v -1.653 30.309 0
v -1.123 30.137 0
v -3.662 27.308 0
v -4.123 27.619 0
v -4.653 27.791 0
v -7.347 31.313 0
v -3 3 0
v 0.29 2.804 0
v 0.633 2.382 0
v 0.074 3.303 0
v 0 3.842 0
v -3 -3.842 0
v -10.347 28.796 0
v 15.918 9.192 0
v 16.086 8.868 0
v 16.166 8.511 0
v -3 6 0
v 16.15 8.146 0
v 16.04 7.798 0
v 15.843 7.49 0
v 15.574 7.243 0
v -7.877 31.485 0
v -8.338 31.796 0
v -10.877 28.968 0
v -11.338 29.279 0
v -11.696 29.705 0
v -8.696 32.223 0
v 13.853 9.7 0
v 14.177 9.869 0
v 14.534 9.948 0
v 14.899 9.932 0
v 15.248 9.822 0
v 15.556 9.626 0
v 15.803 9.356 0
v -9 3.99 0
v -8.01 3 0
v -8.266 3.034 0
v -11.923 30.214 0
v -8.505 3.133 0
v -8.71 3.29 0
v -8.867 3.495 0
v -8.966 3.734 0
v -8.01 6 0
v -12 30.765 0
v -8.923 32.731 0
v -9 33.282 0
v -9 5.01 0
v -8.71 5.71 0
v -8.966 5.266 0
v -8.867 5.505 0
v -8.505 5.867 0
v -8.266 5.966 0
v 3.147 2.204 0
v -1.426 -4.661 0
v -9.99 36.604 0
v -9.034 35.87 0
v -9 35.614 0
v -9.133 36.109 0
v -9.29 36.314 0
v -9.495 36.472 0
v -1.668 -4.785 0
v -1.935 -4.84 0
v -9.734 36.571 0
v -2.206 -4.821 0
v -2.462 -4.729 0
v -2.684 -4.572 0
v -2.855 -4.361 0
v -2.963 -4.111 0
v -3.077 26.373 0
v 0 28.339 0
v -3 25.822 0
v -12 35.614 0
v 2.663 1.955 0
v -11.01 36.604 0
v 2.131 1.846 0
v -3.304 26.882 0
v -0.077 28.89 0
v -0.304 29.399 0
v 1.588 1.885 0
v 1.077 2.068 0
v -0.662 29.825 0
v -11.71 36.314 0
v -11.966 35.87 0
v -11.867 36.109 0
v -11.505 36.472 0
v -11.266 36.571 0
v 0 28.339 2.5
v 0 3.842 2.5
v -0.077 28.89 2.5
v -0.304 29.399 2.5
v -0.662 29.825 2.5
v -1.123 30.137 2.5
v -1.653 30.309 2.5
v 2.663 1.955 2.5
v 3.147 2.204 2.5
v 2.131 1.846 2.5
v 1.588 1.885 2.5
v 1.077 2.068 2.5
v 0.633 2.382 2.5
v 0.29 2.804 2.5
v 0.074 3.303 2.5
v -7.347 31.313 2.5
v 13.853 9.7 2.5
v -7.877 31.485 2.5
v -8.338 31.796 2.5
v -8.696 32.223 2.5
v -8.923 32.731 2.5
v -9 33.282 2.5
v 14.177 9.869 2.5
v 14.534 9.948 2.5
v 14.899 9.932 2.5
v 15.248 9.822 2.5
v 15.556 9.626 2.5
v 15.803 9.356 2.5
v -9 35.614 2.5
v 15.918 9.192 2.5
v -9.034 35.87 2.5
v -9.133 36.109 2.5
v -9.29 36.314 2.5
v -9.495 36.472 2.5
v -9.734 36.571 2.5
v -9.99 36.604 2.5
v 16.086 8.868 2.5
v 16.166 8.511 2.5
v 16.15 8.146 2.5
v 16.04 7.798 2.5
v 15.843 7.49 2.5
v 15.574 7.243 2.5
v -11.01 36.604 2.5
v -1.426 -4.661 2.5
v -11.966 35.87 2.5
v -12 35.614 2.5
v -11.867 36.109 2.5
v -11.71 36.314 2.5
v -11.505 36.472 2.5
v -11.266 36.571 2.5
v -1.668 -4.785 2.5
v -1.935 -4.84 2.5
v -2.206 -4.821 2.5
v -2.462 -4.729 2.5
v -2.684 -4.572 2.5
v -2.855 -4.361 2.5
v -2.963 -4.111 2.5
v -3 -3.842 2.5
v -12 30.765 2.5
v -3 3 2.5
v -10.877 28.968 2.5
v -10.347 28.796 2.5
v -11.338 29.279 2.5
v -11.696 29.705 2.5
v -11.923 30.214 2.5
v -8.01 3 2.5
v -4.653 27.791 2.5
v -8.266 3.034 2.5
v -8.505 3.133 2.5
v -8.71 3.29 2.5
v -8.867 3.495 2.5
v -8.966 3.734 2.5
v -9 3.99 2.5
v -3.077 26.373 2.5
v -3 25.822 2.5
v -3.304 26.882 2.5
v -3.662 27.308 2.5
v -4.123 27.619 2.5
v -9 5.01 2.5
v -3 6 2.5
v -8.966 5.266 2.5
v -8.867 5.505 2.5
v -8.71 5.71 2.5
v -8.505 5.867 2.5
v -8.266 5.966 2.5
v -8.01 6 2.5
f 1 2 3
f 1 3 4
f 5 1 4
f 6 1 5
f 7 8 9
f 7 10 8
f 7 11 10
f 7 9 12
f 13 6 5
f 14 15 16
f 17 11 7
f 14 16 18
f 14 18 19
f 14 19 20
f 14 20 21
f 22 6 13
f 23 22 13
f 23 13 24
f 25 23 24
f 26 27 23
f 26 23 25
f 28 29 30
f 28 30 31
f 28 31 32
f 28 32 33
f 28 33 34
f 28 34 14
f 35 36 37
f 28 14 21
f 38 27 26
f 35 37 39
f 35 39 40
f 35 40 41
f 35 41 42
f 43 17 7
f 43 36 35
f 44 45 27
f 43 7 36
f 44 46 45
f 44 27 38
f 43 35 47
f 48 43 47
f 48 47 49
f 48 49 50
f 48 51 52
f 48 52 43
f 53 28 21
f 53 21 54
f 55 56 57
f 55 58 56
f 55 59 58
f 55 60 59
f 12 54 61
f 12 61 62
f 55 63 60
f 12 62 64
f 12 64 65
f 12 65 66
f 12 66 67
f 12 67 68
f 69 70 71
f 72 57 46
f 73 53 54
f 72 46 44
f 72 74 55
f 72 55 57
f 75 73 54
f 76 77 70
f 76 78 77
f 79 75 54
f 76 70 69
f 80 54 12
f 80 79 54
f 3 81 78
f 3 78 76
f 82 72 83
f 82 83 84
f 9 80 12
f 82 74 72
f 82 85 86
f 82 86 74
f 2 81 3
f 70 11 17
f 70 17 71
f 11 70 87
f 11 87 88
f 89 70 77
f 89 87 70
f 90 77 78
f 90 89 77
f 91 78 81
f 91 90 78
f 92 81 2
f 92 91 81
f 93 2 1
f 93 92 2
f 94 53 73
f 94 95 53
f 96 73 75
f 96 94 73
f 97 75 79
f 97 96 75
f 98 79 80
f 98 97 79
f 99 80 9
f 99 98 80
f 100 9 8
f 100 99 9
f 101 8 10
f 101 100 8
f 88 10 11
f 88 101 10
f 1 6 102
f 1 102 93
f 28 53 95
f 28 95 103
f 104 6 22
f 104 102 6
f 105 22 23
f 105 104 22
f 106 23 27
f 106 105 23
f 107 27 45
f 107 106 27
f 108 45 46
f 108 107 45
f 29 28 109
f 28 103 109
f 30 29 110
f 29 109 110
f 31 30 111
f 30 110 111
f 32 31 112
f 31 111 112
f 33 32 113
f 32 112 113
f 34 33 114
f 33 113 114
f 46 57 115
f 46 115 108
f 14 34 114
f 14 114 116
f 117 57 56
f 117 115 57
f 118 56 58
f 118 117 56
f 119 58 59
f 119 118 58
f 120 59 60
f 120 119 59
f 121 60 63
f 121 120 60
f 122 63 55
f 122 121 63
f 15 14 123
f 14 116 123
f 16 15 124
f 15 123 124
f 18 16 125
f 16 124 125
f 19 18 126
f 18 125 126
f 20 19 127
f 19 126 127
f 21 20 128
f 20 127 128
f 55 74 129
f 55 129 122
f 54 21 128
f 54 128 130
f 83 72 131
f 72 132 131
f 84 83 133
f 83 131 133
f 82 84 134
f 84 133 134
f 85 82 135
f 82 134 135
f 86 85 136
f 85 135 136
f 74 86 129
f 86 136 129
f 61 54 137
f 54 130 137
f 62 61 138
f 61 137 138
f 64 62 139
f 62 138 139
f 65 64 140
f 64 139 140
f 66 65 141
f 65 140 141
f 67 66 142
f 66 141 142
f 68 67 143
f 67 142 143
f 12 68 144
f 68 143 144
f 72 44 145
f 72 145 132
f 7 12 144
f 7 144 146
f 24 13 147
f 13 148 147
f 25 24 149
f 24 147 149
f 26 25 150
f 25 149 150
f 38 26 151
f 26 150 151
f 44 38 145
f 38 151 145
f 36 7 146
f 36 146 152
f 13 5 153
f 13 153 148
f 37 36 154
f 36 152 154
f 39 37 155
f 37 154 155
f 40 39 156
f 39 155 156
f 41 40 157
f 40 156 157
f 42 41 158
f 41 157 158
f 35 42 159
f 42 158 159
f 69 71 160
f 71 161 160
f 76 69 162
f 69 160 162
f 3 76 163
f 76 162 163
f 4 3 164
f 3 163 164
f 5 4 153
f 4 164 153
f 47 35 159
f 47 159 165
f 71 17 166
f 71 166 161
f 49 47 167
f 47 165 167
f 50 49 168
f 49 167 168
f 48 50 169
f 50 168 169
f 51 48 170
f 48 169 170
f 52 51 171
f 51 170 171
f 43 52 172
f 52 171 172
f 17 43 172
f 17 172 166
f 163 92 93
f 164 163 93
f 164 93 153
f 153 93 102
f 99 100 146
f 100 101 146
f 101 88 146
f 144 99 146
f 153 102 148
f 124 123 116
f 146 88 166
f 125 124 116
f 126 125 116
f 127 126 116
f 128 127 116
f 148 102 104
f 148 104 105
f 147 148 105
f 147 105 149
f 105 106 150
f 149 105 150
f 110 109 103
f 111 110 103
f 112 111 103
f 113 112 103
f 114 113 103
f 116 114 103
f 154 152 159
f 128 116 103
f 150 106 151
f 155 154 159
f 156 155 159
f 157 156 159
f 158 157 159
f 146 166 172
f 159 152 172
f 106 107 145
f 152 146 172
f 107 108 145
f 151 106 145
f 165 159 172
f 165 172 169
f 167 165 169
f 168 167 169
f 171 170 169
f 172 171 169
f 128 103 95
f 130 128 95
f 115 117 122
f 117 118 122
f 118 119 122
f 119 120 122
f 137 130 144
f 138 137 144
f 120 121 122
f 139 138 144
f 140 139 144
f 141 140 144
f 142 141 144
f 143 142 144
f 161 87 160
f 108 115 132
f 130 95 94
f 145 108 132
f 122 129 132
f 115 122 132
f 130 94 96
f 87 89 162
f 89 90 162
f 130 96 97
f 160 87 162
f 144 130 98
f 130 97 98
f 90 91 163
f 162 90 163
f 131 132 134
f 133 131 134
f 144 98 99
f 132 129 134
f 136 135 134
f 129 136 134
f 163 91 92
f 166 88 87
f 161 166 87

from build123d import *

# Parameters (mm, degrees)
PAD_DEPTH   = 2.5
FILLET_R    = 0.99
FILLET001_R = 0.99
FILLET002_R = 1.4
FILLET003_R = 2
FILLET004_R = 1
FILLET005_R = 2


with BuildPart() as part:
    # Sketch → Pad (new body)
    with BuildSketch(Plane.XY):
        Polygon((0, 0), (15, 10.503113), (16.720729, 8.045657), (-3, -5.762946), (-3, 3), (-9, 3), (-9, 6), (-3, 6), (-3, 27.5), (-12, 29.086943), (-12, 36.604242), (-9, 36.604242), (-9, 31.604242), (0, 30.017299), align=None)
    extrude(amount=PAD_DEPTH)

    # Fillet
    fillet_edges = [part.edges().sort_by_distance(p)[0] for p in [
        (-9, 3, 1.25),
        (-9, 6, 1.25),
    ]]
    fillet(fillet_edges, radius=FILLET_R)

    # Fillet001
    fillet001_edges = [part.edges().sort_by_distance(p)[0] for p in [
        (-12, 36.604242, 1.25),
        (-9, 36.604242, 1.25),
    ]]
    fillet(fillet001_edges, radius=FILLET001_R)

    # Fillet002
    fillet002_edges = [part.edges().sort_by_distance(p)[0] for p in [
        (15, 10.503113, 1.25),
        (16.720729, 8.045657, 1.25),
    ]]
    fillet(fillet002_edges, radius=FILLET002_R)

    # Fillet003
    fillet003_edges = [part.edges().sort_by_distance(p)[0] for p in [
        (0, 0, 1.25),
    ]]
    fillet(fillet003_edges, radius=FILLET003_R)

    # Fillet004
    fillet004_edges = [part.edges().sort_by_distance(p)[0] for p in [
        (-3, -5.762946, 1.25),
    ]]
    fillet(fillet004_edges, radius=FILLET004_R)

    # Fillet005
    fillet005_edges = [part.edges().sort_by_distance(p)[0] for p in [
        (-12, 29.086943, 1.25),
        (-3, 27.5, 1.25),
        (0, 30.017299, 1.25),
        (-9, 31.604242, 1.25),
    ]]
    fillet(fillet005_edges, radius=FILLET005_R)


solid = part.part
